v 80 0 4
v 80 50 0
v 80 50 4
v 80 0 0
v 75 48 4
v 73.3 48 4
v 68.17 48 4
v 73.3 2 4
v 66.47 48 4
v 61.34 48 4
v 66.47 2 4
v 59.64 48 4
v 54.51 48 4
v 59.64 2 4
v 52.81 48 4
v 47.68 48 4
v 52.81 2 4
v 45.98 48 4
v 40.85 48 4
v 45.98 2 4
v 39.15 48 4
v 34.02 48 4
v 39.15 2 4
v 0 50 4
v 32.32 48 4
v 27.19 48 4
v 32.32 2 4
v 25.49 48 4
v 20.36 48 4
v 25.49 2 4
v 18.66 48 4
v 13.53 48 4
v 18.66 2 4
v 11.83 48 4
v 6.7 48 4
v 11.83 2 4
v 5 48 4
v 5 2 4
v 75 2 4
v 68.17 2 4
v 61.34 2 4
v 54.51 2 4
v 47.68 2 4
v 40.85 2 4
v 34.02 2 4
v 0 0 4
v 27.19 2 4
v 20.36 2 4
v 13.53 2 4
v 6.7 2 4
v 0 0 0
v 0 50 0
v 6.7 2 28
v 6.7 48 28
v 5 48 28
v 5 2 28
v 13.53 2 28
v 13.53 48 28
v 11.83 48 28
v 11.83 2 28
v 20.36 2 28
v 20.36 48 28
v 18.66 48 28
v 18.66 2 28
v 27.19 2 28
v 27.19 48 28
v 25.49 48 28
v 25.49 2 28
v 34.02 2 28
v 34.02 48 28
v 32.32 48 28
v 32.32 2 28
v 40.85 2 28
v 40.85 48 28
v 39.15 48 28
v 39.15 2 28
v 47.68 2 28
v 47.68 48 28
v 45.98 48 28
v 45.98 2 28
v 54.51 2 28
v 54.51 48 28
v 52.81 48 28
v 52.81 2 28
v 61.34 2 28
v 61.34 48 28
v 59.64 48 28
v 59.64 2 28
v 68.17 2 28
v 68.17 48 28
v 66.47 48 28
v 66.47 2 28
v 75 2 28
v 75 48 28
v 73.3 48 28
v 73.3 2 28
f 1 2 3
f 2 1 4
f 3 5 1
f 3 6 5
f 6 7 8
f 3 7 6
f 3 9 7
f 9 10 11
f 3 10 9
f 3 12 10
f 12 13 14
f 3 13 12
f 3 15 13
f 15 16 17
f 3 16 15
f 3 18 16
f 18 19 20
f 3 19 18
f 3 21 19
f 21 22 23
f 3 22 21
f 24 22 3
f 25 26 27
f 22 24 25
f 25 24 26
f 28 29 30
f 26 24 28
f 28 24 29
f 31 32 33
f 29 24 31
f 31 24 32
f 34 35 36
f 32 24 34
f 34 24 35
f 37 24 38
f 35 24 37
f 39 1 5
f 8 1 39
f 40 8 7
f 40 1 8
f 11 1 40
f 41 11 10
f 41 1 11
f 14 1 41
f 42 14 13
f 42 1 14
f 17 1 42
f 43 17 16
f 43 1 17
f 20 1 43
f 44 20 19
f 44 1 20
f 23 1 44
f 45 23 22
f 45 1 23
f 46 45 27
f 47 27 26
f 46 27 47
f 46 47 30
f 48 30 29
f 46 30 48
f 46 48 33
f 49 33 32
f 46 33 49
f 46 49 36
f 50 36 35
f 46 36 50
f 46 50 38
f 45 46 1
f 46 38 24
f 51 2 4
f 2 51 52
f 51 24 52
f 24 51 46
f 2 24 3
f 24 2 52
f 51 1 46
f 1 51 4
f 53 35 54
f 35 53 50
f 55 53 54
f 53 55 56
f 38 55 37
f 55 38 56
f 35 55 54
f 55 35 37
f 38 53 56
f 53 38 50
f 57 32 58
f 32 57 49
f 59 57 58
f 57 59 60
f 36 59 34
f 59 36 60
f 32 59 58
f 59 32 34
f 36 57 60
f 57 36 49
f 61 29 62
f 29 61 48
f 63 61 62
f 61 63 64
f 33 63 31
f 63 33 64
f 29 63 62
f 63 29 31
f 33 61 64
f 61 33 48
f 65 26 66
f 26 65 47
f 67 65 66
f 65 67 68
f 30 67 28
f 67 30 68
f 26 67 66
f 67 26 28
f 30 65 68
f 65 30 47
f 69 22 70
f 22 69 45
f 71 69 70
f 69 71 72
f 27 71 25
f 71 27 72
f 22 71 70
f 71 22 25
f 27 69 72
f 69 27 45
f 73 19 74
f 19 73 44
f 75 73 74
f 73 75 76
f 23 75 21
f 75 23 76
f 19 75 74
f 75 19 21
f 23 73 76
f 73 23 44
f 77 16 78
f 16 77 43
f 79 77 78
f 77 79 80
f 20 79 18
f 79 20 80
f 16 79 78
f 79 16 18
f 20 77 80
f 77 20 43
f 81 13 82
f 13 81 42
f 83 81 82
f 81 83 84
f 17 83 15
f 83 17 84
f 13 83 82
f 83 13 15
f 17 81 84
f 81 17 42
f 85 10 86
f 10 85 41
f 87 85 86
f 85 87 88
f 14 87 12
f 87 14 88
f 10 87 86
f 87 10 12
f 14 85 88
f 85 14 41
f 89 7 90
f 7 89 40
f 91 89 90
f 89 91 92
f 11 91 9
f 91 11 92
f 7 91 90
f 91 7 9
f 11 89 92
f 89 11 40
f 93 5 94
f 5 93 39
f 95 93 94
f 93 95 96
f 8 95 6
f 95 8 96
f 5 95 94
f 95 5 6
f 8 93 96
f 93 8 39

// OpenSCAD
// Reference geometry-proxy design: 11 externally open Y-running channels.
// 1.7 mm fins exceed the 1.5 mm minimum; 5.13 mm gaps exceed the 3 mm minimum.
union() {
	translate(v = [40.0, 25.0, 2.0]) {
		cube(center = true, size = [80.0, 50.0, 4.0]);
	}
	translate(v = [5.85, 25.0, 16.0]) {
		cube(center = true, size = [1.7, 46.0, 24.0]);
	}
	translate(v = [12.68, 25.0, 16.0]) {
		cube(center = true, size = [1.7, 46.0, 24.0]);
	}
	translate(v = [19.51, 25.0, 16.0]) {
		cube(center = true, size = [1.7, 46.0, 24.0]);
	}
	translate(v = [26.34, 25.0, 16.0]) {
		cube(center = true, size = [1.7, 46.0, 24.0]);
	}
	translate(v = [33.17, 25.0, 16.0]) {
		cube(center = true, size = [1.7, 46.0, 24.0]);
	}
	translate(v = [40.0, 25.0, 16.0]) {
		cube(center = true, size = [1.7, 46.0, 24.0]);
	}
	translate(v = [46.83, 25.0, 16.0]) {
		cube(center = true, size = [1.7, 46.0, 24.0]);
	}
	translate(v = [53.66, 25.0, 16.0]) {
		cube(center = true, size = [1.7, 46.0, 24.0]);
	}
	translate(v = [60.49, 25.0, 16.0]) {
		cube(center = true, size = [1.7, 46.0, 24.0]);
	}
	translate(v = [67.32, 25.0, 16.0]) {
		cube(center = true, size = [1.7, 46.0, 24.0]);
	}
	translate(v = [74.15, 25.0, 16.0]) {
		cube(center = true, size = [1.7, 46.0, 24.0]);
	}
}
